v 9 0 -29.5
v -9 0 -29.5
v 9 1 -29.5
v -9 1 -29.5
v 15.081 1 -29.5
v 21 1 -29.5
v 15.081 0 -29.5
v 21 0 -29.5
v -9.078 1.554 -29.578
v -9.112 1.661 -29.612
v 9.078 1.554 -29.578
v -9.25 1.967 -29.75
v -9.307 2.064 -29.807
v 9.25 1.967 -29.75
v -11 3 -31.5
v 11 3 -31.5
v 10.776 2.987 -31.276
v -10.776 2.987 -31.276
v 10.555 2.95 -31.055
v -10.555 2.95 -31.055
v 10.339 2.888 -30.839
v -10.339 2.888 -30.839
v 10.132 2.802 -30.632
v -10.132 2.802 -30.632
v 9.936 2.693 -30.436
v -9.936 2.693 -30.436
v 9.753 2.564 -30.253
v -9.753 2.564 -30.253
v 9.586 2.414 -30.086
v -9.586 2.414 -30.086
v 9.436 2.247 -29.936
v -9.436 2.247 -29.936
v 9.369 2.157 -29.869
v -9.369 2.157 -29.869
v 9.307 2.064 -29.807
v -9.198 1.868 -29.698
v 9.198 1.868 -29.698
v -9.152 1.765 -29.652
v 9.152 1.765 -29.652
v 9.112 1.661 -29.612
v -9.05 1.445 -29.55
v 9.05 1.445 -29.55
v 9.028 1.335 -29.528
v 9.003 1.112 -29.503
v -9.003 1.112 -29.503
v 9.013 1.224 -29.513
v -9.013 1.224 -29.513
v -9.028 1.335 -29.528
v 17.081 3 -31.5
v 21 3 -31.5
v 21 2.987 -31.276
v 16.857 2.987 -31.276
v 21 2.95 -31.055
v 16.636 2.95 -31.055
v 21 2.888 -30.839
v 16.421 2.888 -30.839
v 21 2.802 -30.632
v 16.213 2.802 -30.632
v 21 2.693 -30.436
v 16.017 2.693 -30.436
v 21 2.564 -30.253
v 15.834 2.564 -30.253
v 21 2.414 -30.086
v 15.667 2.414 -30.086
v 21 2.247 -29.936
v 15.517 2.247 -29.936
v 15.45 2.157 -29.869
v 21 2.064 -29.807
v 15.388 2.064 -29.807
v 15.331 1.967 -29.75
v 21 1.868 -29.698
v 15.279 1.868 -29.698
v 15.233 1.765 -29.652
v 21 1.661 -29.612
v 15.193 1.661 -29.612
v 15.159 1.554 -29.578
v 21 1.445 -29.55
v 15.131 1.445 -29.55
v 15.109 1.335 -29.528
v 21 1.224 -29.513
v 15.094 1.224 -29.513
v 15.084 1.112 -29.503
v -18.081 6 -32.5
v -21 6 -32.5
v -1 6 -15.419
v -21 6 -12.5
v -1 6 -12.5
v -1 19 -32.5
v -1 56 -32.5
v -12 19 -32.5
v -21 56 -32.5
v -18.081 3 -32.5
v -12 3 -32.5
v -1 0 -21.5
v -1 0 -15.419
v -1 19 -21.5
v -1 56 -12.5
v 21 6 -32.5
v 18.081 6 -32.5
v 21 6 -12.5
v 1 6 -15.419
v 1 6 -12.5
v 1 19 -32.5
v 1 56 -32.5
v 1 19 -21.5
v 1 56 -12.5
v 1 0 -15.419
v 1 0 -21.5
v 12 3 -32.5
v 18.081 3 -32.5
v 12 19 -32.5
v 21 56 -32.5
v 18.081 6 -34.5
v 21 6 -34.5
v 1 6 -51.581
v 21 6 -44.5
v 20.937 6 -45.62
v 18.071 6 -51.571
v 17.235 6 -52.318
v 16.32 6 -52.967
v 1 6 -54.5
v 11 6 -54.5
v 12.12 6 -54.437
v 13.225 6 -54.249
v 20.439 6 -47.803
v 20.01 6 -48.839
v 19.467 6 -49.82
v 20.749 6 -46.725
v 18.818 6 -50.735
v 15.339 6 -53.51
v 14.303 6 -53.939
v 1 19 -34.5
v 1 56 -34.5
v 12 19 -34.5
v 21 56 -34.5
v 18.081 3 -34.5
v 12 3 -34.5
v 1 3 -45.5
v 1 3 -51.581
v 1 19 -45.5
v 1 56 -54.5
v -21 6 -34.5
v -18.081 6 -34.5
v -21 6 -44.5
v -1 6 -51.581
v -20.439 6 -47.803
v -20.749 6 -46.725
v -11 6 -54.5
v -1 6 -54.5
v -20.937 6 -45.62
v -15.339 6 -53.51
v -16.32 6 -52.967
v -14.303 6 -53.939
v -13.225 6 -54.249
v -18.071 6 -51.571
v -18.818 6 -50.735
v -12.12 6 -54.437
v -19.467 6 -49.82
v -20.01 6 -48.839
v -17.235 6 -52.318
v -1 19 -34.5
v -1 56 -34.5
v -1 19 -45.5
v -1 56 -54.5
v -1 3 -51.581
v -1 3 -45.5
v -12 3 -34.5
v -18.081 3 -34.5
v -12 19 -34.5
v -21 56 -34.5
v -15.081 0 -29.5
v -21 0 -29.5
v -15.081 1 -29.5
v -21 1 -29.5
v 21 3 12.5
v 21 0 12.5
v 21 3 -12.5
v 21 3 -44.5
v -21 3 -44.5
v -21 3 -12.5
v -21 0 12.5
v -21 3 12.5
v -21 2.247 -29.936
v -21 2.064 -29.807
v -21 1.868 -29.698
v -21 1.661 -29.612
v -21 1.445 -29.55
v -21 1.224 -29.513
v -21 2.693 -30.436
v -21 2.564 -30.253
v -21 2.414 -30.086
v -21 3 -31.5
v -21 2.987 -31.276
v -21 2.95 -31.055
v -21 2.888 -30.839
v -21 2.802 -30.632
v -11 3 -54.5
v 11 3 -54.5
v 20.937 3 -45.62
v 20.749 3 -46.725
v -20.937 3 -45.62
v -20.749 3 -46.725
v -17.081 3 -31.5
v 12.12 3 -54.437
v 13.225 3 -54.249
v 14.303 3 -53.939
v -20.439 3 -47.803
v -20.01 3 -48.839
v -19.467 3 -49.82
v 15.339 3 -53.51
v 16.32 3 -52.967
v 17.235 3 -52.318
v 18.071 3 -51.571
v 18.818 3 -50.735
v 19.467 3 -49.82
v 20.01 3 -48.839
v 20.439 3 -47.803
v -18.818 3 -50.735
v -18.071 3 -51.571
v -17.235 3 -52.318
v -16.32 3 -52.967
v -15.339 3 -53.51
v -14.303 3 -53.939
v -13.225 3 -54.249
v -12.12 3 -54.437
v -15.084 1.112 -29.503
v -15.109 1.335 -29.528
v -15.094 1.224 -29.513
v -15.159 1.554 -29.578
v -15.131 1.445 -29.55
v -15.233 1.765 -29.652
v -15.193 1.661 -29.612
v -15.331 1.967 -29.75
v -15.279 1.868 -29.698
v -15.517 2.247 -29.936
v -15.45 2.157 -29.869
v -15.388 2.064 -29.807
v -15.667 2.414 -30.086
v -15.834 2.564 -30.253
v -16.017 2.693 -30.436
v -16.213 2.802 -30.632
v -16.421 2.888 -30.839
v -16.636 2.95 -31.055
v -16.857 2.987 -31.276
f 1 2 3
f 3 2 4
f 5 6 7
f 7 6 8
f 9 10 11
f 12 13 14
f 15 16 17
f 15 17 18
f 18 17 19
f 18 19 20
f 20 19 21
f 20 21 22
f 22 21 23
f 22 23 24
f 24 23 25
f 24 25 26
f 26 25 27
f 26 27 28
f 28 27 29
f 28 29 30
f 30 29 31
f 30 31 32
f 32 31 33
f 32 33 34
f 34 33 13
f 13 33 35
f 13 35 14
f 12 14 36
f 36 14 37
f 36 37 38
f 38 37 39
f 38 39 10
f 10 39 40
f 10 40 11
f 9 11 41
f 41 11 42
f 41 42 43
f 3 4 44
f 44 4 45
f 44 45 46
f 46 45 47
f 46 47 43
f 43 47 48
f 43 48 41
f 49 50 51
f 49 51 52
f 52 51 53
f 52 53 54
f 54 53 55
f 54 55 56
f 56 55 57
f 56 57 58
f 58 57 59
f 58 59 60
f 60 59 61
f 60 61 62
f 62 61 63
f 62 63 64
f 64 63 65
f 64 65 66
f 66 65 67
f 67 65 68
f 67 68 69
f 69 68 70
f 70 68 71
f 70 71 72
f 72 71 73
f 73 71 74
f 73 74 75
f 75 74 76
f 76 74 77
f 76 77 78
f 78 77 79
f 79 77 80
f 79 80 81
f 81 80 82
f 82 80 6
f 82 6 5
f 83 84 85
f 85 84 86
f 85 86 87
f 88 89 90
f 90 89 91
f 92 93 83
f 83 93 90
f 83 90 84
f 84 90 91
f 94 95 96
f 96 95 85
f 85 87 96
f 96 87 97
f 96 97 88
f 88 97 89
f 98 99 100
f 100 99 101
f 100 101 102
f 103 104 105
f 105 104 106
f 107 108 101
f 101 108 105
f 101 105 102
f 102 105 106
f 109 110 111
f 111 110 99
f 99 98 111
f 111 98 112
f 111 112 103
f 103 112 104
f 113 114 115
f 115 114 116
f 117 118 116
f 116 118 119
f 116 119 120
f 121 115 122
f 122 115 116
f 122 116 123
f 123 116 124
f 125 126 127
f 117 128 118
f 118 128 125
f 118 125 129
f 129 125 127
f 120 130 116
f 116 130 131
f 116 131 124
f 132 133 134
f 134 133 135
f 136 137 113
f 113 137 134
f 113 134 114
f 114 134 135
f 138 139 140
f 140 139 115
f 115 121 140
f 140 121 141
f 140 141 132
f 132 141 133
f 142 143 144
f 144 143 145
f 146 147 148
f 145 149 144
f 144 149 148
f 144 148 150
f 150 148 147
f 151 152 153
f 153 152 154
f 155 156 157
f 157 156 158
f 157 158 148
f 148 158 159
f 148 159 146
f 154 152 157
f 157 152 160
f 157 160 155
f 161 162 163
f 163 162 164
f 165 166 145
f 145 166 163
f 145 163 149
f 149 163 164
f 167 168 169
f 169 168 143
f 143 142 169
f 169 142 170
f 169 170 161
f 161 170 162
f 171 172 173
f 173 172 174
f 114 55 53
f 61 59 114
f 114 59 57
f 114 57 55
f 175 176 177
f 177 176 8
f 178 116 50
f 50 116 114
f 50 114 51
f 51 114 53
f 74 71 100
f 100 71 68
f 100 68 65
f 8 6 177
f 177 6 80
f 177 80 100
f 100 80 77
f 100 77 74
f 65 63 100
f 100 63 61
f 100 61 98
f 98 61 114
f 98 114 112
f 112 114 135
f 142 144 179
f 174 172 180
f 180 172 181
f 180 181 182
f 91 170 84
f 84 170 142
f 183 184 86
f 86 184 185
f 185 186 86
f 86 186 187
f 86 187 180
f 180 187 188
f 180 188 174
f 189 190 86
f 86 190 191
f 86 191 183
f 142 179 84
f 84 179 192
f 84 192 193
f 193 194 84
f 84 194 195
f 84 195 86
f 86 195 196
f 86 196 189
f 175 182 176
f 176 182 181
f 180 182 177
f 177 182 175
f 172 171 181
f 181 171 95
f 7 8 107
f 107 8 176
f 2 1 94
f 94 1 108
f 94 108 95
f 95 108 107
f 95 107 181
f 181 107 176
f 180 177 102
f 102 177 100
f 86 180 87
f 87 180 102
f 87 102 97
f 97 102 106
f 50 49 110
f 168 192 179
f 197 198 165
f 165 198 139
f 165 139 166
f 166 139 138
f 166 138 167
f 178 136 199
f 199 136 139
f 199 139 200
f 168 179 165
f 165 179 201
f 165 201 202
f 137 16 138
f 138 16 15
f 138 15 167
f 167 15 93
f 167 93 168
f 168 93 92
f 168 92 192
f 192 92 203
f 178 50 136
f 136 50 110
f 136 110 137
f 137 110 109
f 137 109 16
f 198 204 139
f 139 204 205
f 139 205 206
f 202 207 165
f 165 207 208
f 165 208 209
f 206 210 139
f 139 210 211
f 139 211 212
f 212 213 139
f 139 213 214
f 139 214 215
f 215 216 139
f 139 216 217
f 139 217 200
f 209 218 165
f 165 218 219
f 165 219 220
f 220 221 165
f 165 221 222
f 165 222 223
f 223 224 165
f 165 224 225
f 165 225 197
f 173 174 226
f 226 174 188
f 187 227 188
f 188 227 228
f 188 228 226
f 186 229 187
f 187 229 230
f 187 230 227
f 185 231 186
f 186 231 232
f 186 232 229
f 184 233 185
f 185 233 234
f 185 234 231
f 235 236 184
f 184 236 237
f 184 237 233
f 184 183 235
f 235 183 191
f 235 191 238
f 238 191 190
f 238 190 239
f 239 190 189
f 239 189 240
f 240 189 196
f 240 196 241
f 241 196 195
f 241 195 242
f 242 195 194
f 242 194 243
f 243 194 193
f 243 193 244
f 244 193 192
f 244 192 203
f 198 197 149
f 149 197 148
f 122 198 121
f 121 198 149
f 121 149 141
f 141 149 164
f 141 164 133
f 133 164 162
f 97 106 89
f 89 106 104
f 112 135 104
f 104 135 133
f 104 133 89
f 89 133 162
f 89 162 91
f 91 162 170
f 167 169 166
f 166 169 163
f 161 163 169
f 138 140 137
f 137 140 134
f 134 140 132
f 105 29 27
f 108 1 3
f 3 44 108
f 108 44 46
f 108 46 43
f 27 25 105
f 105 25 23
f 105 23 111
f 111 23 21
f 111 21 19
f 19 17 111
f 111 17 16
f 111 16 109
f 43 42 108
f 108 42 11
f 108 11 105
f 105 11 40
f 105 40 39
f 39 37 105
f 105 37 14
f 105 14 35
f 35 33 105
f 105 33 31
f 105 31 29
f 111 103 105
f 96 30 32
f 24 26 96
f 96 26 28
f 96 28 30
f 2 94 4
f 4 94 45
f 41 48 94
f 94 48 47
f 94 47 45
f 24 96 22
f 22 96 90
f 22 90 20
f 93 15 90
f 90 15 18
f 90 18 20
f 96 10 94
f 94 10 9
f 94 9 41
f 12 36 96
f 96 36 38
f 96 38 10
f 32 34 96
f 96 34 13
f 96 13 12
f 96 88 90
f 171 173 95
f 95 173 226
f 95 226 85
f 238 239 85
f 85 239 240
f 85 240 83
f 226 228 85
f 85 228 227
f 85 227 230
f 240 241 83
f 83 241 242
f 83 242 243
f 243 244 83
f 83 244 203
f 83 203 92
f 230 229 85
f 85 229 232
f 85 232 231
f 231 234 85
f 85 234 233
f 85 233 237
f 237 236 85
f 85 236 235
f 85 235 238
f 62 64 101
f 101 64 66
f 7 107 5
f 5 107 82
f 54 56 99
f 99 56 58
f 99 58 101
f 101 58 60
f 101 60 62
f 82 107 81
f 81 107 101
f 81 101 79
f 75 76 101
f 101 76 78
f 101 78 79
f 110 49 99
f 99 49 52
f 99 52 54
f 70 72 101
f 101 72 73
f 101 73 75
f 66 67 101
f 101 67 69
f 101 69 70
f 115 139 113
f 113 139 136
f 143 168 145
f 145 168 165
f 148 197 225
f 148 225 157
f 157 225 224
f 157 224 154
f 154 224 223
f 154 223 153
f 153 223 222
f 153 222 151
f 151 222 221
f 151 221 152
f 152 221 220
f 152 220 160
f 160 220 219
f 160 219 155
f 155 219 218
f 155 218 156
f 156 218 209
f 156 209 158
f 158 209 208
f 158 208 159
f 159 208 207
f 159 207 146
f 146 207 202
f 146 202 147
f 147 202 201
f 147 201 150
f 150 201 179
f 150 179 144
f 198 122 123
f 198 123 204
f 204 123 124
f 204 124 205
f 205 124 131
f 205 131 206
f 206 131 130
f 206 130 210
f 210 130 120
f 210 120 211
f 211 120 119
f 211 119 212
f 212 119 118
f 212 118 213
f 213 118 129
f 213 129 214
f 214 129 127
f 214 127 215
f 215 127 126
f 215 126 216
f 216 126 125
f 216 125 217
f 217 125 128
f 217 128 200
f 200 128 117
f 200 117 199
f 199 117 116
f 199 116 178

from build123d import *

# Parameters (mm, degrees)
SKETCH1_W           = 42
SKETCH1_H           = 25
BOSS_EXTRUDE1_DEPTH = 3
SKETCH2_W           = 42
SKETCH2_H           = 17
BOSS_EXTRUDE2_DEPTH = 6
SKETCH4_W           = 42
SKETCH4_H           = 3
BOSS_EXTRUDE4_DEPTH = 3
FILLET2_R           = 2
SKETCH5_W           = 42
SKETCH5_H           = 3
BOSS_EXTRUDE5_DEPTH = 2
SKETCH7_W           = 42
SKETCH7_H           = 3
BOSS_EXTRUDE6_DEPTH = 20
BOSS_EXTRUDE7_DEPTH = 50
BOSS_EXTRUDE8_DEPTH = 13
CUT_EXTRUDE1_DEPTH  = 13
FILLET3_R           = 10


with BuildPart() as part:
    # Sketch1 → Boss-Extrude1 (new body)
    with BuildSketch(Plane(origin=(0, 0, 0), x_dir=(1, 0, 0), z_dir=(0, 1, 0))):
        Rectangle(SKETCH1_W, SKETCH1_H)
    extrude(amount=BOSS_EXTRUDE1_DEPTH)

    # Sketch2 → Boss-Extrude2 (add)
    with BuildSketch(Plane(origin=(0, 0, 0), x_dir=(1, 0, 0), z_dir=(0, 1, 0))):
        with Locations((0, 21)):
            Rectangle(SKETCH2_W, SKETCH2_H)
    extrude(amount=BOSS_EXTRUDE2_DEPTH)

    # Sketch4 → Boss-Extrude4 (add)
    with BuildSketch(Plane(origin=(0, 0, -29.5), x_dir=(-1, 0, 0), z_dir=(0, 0, -1))):
        with Locations((0, 4.5)):
            Rectangle(SKETCH4_W, SKETCH4_H)
    extrude(amount=BOSS_EXTRUDE4_DEPTH)

    # Fillet2
    fillet2_edges = [part.edges().sort_by_distance(p)[0] for p in [
        (0, 3, -29.5),
    ]]
    fillet(fillet2_edges, radius=FILLET2_R)

    # Sketch5 → Boss-Extrude5 (add)
    with BuildSketch(Plane(origin=(0, 0, -32.5), x_dir=(-1, 0, 0), z_dir=(0, 0, -1))):
        with Locations((0, 4.5)):
            Rectangle(SKETCH5_W, SKETCH5_H)
    extrude(amount=BOSS_EXTRUDE5_DEPTH)

    # Sketch7 → Boss-Extrude6 (add)
    with BuildSketch(Plane(origin=(0, 0, -34.5), x_dir=(-1, 0, 0), z_dir=(0, 0, -1))):
        with Locations((0, 4.5)):
            Rectangle(SKETCH7_W, SKETCH7_H)
    extrude(amount=BOSS_EXTRUDE6_DEPTH)

    # Sketch6 → Boss-Extrude7 (add)
    with BuildSketch(Plane(origin=(0, 6, 0), x_dir=(1, 0, 0), z_dir=(0, 1, 0))):
        Polygon((-21, 34.5), (-1, 34.5), (-1, 54.5), (1, 54.5), (1, 34.5), (21, 34.5), (21, 32.5), (1, 32.5), (1, 12.5), (-1, 12.5), (-1, 32.5), (-21, 32.5), align=None)
    extrude(amount=BOSS_EXTRUDE7_DEPTH)

    # Sketch9 → Boss-Extrude8 (add)
    with BuildSketch(Plane(origin=(0, 6, 0), x_dir=(1, 0, 0), z_dir=(0, 1, 0))):
        Polygon((-12, 34.5), (-1, 45.5), (-1, 34.5), align=None)
        Polygon((1, 34.5), (1, 45.5), (12, 34.5), align=None)
        Polygon((12, 32.5), (1, 32.5), (1, 21.5), align=None)
        Polygon((-1, 21.5), (-1, 32.5), (-12, 32.5), align=None)
    extrude(amount=BOSS_EXTRUDE8_DEPTH)

    # Sketch10 → Cut-Extrude1 (cut)
    with BuildSketch(Plane(origin=(0, 6, 0), x_dir=(1, 0, 0), z_dir=(0, 1, 0))):
        Polygon((1, 45.5), (1, 51.581118318), (18.081118318, 34.5), (12, 34.5), align=None)
        Polygon((-1, 45.5), (-1, 51.581118318), (-18.081118318, 34.5), (-12, 34.5), align=None)
        Polygon((-12, 32.5), (-1, 21.5), (-1, 15.418881682), (-18.081118318, 32.5), align=None)
        Polygon((1, 21.5), (1, 15.418881682), (18.081118318, 32.5), (12, 32.5), align=None)
    extrude(amount=-CUT_EXTRUDE1_DEPTH, mode=Mode.SUBTRACT)

    # Fillet3
    fillet3_edges = [part.edges().sort_by_distance(p)[0] for p in [
        (21, 4.5, -54.5),
        (-21, 4.5, -54.5),
    ]]
    fillet(fillet3_edges, radius=FILLET3_R)


solid = part.part
